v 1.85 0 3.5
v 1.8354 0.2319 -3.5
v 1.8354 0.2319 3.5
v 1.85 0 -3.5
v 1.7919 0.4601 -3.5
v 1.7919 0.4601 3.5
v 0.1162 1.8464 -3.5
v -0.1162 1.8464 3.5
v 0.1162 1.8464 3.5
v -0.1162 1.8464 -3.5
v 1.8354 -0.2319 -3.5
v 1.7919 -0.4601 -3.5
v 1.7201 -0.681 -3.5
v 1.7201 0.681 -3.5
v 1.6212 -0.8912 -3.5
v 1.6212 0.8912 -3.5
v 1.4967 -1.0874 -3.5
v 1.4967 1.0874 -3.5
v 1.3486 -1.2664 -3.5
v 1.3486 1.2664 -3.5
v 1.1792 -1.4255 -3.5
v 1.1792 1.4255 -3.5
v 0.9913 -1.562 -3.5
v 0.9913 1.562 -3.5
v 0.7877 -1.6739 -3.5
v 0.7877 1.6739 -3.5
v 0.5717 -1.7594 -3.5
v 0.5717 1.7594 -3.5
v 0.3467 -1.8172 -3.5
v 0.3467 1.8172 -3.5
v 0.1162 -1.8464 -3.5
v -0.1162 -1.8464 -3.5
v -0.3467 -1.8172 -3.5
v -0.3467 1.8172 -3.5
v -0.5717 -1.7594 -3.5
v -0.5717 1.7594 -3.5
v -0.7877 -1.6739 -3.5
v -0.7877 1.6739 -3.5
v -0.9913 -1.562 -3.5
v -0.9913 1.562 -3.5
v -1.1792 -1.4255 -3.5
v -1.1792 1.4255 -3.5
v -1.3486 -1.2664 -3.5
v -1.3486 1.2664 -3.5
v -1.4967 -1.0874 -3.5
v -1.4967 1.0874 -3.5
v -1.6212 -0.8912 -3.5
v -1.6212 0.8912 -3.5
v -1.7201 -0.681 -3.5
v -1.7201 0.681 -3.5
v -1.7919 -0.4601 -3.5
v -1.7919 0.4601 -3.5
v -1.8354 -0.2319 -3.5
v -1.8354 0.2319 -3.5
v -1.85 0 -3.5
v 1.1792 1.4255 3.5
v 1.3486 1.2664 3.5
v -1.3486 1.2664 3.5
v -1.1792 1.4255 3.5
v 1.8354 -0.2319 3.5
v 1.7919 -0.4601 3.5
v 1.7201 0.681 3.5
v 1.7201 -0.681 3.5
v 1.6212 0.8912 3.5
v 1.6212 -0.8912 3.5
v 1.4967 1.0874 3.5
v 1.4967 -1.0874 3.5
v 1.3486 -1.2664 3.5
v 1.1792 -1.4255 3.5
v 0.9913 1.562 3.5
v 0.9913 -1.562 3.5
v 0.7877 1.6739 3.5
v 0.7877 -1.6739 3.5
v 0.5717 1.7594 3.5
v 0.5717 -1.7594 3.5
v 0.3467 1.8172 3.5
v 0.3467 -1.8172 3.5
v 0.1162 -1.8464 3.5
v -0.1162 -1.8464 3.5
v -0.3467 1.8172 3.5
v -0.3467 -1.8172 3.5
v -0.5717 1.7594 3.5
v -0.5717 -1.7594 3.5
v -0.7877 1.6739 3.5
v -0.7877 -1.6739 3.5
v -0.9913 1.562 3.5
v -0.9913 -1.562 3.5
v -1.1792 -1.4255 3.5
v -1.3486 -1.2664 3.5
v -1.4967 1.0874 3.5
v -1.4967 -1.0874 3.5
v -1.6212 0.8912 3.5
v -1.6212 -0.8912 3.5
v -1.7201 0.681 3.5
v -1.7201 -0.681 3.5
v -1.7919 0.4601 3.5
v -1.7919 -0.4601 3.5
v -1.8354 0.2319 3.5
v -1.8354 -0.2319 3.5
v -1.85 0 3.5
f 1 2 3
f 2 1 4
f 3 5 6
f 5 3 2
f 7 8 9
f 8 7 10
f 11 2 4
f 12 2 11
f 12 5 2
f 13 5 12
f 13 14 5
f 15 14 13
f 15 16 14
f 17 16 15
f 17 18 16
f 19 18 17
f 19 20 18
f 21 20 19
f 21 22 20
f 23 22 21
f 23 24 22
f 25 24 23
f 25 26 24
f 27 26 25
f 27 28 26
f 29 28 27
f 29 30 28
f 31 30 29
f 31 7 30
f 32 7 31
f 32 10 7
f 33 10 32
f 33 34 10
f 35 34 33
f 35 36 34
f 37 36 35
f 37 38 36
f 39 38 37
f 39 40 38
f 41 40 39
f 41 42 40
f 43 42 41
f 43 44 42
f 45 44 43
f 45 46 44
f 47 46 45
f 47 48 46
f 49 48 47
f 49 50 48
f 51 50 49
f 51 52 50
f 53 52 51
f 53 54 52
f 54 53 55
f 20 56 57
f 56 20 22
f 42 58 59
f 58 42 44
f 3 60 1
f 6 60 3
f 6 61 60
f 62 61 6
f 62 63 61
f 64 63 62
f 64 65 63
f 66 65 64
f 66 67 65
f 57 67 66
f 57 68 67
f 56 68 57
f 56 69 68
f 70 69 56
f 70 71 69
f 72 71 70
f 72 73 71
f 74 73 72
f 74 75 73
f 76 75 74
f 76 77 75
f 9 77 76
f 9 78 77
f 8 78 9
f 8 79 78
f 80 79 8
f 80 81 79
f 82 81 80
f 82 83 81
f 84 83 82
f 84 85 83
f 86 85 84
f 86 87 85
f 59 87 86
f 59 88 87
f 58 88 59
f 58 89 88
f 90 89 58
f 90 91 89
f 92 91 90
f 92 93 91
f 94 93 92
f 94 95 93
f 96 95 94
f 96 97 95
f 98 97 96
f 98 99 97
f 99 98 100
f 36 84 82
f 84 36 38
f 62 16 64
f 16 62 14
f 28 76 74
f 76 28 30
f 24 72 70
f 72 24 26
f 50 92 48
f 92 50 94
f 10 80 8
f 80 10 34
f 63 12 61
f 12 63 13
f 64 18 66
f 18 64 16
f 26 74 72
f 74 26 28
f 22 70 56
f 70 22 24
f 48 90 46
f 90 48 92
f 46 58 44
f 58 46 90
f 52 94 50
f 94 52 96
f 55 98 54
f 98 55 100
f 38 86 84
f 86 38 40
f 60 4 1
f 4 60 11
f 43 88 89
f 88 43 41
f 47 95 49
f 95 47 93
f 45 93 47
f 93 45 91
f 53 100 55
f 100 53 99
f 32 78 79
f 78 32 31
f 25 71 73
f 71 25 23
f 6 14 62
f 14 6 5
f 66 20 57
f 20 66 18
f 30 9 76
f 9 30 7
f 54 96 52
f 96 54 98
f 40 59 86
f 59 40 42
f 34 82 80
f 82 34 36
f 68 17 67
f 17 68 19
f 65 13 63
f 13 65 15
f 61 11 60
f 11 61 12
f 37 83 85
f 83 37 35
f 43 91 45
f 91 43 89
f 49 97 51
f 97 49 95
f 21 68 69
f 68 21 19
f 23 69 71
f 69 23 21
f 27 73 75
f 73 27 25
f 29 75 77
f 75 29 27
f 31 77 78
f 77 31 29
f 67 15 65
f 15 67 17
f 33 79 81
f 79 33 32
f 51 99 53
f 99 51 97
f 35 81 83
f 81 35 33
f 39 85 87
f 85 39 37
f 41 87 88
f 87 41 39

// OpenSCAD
$fn = 50;


difference() {
	union() {
		translate(v = [0, 0, -3.5000000000]) {
			cylinder(h = 7, r = 1.8500000000);
		}
	}
	union() {
		translate(v = [0, 0, -100.0000000000]) {
			cylinder(h = 200, r = 0);
		}
	}
}
